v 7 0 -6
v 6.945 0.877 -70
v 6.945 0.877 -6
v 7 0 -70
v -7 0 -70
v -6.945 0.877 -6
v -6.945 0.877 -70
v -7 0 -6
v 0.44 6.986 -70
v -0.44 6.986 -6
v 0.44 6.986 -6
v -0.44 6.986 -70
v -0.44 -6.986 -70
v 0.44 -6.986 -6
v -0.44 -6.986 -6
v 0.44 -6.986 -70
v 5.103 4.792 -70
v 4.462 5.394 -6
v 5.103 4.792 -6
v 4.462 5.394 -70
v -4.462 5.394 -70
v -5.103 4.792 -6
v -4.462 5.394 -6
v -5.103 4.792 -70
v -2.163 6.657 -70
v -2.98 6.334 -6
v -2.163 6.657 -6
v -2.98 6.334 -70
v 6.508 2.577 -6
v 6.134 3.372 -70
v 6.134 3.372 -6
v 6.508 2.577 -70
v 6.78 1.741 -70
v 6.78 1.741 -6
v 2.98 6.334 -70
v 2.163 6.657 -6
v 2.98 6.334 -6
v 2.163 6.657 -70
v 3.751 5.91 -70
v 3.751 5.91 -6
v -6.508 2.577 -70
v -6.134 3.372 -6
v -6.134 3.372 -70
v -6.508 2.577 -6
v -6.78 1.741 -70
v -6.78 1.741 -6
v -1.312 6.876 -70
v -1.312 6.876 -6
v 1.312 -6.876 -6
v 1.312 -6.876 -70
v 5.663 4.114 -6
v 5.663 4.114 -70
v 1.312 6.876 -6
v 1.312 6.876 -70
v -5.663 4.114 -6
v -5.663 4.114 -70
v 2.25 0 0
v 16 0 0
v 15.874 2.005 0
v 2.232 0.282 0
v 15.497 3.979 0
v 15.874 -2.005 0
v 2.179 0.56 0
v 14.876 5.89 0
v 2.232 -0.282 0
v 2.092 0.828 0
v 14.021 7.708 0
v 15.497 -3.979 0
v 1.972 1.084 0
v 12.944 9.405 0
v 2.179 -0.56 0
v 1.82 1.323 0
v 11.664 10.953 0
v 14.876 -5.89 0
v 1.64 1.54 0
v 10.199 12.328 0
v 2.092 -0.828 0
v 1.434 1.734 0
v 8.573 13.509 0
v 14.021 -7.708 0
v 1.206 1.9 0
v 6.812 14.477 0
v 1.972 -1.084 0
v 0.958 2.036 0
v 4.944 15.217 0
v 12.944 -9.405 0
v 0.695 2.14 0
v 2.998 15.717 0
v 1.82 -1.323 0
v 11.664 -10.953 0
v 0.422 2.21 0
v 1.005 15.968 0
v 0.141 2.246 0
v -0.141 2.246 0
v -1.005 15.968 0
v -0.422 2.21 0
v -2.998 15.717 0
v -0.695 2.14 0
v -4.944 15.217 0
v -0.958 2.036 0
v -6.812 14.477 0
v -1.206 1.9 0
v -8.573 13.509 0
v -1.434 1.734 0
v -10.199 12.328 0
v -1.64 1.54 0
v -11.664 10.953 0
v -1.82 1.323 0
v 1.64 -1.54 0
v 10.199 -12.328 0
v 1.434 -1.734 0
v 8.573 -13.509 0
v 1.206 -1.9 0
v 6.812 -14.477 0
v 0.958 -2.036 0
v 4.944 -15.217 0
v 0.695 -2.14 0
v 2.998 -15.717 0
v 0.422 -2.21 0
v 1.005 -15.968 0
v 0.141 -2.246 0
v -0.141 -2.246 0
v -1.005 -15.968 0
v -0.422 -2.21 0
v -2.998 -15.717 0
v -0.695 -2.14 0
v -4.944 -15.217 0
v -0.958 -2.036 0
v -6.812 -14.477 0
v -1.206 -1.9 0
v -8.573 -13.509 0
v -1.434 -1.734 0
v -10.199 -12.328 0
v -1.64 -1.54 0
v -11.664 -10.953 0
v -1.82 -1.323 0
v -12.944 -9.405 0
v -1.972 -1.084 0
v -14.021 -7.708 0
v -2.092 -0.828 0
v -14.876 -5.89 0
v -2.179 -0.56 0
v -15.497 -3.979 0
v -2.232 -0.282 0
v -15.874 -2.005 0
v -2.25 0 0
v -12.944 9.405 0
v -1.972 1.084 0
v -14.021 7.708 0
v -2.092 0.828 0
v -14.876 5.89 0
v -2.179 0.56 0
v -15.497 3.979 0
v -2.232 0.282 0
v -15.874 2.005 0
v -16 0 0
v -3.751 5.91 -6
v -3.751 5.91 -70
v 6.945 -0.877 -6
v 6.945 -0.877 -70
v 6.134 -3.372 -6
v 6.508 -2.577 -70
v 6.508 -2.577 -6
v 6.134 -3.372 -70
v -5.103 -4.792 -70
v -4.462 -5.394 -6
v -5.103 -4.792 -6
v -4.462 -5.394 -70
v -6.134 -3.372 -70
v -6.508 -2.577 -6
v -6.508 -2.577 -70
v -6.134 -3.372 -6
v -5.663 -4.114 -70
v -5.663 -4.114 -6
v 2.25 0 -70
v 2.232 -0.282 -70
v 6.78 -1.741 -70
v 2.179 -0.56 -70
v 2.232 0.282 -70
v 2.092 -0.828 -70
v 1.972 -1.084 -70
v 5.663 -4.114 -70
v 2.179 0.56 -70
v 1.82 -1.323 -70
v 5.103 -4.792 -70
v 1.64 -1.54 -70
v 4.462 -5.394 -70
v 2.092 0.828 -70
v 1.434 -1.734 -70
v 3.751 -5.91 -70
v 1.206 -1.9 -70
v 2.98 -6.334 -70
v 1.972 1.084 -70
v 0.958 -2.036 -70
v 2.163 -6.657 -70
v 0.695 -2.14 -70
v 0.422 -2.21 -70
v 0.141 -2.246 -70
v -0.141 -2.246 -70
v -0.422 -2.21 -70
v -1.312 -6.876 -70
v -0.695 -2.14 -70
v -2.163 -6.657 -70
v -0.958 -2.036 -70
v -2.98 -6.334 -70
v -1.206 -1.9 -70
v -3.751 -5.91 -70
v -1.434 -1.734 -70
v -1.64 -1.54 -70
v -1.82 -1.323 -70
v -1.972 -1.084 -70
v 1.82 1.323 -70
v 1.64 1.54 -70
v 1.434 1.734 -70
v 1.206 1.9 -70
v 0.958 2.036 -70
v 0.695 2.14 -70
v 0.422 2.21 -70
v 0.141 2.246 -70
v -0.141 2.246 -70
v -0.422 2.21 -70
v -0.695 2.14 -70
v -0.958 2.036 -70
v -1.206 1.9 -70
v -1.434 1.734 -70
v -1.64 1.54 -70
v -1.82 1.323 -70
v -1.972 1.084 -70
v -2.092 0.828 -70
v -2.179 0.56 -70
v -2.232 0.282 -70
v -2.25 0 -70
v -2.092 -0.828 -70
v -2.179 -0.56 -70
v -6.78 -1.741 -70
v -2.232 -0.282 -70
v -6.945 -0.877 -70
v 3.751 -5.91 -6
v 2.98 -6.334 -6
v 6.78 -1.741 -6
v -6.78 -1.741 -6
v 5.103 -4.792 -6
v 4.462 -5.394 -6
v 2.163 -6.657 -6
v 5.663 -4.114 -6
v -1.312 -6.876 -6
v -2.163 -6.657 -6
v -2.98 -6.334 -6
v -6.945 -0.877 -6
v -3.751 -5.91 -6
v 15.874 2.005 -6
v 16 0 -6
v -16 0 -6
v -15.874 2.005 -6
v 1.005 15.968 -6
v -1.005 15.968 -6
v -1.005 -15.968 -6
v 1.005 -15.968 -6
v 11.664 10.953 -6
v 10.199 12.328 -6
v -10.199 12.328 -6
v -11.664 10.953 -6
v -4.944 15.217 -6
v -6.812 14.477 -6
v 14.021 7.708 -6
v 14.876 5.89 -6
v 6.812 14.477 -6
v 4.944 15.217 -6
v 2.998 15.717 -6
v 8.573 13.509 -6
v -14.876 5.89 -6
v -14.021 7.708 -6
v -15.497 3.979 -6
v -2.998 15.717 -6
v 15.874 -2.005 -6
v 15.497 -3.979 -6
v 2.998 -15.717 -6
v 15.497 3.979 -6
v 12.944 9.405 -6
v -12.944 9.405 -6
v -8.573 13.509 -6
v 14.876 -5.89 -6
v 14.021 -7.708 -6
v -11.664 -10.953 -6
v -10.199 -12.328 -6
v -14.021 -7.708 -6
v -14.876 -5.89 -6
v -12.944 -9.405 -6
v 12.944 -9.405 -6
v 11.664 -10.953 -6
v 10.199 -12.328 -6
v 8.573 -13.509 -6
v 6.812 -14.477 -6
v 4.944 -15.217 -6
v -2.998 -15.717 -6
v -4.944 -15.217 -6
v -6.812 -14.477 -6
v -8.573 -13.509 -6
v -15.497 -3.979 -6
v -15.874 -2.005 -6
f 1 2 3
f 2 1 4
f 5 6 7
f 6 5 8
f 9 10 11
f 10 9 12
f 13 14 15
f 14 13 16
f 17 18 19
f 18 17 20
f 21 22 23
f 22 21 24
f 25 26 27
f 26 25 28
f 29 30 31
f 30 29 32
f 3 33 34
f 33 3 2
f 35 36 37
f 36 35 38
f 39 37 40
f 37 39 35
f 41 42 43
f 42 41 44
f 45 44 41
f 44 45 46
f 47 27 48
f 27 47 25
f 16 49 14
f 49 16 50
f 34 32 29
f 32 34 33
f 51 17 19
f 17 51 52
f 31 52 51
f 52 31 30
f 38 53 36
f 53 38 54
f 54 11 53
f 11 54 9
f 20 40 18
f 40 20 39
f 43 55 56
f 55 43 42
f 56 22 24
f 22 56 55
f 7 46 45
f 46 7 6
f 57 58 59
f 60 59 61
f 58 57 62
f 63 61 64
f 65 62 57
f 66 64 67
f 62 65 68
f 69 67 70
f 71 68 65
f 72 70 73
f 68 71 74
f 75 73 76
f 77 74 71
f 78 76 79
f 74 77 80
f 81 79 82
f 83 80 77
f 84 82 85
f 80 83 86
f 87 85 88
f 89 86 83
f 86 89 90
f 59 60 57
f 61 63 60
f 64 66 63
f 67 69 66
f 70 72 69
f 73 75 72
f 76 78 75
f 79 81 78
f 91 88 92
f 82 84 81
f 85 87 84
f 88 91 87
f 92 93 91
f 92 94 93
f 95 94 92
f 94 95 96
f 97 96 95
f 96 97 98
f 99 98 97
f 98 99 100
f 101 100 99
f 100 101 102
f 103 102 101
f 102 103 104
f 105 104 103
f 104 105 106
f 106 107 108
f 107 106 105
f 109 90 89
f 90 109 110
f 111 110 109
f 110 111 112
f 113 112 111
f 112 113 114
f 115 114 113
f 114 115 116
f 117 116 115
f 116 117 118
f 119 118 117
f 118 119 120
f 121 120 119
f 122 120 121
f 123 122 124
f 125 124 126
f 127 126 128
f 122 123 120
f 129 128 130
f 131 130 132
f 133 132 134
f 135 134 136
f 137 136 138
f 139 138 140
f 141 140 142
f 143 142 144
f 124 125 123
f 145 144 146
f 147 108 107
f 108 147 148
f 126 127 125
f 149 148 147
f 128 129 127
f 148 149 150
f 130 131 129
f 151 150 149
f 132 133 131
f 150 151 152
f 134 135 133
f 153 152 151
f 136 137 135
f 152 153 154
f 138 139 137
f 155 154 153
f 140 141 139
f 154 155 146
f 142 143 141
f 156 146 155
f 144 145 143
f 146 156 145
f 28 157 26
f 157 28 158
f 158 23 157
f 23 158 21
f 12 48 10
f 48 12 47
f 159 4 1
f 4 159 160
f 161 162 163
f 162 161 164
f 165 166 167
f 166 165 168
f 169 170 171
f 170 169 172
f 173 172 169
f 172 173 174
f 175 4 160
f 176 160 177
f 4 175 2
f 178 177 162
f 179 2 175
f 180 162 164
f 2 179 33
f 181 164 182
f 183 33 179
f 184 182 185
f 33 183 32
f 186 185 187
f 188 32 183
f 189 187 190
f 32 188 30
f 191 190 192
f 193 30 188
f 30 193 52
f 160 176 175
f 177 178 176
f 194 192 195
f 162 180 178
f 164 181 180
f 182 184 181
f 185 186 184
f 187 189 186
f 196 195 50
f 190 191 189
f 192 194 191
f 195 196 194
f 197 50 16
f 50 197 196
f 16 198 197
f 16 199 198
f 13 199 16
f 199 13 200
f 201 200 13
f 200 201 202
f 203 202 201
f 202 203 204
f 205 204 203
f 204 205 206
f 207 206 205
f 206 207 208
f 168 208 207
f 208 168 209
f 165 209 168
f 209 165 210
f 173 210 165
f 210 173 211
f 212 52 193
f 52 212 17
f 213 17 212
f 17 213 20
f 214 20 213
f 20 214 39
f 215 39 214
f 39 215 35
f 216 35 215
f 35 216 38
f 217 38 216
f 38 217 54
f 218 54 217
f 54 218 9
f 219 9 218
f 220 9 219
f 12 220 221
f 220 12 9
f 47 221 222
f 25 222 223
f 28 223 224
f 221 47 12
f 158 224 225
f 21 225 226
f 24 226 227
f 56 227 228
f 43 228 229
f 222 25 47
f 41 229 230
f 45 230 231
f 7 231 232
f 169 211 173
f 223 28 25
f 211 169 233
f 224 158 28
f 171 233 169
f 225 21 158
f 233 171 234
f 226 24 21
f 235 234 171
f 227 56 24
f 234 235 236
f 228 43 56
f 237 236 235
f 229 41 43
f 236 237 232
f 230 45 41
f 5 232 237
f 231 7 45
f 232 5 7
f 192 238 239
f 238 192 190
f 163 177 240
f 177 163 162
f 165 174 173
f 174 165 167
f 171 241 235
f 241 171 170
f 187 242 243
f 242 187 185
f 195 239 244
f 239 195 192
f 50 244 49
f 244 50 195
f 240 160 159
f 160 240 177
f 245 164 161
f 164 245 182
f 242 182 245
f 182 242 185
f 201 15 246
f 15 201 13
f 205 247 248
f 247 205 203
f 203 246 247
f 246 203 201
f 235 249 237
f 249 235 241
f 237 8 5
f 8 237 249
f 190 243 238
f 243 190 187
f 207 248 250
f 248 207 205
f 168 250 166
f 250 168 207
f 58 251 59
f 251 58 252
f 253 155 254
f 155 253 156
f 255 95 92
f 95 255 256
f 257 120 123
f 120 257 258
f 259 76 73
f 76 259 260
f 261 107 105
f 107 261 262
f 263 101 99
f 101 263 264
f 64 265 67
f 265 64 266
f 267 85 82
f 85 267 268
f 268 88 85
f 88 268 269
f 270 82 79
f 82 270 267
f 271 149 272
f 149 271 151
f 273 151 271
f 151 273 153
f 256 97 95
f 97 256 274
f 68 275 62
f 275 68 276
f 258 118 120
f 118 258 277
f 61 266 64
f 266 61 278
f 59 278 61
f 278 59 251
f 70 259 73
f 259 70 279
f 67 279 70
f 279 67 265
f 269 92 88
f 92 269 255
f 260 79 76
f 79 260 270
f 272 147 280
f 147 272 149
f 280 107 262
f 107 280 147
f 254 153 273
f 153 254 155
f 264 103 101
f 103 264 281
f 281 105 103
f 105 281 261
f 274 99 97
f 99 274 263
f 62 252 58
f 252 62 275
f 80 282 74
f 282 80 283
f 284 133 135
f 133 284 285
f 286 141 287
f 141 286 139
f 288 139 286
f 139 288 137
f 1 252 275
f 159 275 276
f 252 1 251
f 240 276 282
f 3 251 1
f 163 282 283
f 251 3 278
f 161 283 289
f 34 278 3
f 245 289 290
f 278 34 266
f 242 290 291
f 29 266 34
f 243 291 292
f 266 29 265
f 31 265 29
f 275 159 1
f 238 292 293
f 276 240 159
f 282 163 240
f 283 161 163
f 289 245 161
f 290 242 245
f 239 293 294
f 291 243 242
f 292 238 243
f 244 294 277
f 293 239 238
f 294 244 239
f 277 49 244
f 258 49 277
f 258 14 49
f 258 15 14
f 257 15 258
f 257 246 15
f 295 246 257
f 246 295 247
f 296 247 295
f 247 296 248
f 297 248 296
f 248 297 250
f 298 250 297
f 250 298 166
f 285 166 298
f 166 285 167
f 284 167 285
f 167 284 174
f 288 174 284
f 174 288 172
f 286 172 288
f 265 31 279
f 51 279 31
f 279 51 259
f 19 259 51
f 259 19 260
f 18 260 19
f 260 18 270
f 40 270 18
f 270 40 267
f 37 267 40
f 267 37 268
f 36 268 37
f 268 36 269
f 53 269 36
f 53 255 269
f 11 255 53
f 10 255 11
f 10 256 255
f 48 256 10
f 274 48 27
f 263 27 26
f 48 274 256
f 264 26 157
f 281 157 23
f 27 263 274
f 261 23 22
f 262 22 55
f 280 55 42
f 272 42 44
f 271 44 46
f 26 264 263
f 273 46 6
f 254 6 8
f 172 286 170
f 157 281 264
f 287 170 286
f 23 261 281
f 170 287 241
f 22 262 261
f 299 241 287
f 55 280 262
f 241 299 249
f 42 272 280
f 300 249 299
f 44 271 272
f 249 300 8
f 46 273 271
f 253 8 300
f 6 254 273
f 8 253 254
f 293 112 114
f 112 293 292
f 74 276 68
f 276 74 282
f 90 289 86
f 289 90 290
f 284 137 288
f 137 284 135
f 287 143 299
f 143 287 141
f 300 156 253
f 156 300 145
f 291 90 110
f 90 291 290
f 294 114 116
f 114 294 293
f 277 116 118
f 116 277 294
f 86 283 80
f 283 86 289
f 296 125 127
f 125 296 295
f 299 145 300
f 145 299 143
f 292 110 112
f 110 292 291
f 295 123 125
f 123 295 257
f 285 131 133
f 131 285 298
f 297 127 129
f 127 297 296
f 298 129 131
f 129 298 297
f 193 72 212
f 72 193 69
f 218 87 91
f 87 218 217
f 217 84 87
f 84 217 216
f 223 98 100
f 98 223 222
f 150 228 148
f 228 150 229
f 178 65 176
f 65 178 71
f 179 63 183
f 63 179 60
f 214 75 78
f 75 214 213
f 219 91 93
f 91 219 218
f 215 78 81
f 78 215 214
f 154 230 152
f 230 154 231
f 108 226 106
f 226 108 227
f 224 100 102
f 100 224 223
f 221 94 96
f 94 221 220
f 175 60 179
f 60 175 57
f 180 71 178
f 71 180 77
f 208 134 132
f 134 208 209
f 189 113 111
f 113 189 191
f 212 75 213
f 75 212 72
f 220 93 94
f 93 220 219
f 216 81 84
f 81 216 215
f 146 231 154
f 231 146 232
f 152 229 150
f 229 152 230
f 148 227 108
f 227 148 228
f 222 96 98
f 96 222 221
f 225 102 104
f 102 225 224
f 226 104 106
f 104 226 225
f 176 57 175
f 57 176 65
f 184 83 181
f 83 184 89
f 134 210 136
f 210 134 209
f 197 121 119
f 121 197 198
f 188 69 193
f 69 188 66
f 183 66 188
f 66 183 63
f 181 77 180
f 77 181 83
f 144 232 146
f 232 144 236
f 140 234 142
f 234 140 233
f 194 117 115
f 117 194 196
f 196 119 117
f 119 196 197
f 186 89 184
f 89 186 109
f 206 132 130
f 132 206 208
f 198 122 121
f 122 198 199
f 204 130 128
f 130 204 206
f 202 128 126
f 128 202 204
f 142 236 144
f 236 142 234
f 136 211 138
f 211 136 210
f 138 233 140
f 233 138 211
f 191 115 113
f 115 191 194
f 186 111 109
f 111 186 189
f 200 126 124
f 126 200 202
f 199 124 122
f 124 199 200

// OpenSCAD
$fn = 50;


difference() {
	union() {
		translate(v = [0, 0, -70.0000000000]) {
			cylinder(h = 70, r = 7.0000000000);
		}
		translate(v = [0, 0, -6.0000000000]) {
			cylinder(h = 6, r = 16.0000000000);
		}
	}
	union() {
		#translate(v = [0, 0, -70]) {
			cylinder(h = 70, r = 2.2500000000);
		}
	}
}
